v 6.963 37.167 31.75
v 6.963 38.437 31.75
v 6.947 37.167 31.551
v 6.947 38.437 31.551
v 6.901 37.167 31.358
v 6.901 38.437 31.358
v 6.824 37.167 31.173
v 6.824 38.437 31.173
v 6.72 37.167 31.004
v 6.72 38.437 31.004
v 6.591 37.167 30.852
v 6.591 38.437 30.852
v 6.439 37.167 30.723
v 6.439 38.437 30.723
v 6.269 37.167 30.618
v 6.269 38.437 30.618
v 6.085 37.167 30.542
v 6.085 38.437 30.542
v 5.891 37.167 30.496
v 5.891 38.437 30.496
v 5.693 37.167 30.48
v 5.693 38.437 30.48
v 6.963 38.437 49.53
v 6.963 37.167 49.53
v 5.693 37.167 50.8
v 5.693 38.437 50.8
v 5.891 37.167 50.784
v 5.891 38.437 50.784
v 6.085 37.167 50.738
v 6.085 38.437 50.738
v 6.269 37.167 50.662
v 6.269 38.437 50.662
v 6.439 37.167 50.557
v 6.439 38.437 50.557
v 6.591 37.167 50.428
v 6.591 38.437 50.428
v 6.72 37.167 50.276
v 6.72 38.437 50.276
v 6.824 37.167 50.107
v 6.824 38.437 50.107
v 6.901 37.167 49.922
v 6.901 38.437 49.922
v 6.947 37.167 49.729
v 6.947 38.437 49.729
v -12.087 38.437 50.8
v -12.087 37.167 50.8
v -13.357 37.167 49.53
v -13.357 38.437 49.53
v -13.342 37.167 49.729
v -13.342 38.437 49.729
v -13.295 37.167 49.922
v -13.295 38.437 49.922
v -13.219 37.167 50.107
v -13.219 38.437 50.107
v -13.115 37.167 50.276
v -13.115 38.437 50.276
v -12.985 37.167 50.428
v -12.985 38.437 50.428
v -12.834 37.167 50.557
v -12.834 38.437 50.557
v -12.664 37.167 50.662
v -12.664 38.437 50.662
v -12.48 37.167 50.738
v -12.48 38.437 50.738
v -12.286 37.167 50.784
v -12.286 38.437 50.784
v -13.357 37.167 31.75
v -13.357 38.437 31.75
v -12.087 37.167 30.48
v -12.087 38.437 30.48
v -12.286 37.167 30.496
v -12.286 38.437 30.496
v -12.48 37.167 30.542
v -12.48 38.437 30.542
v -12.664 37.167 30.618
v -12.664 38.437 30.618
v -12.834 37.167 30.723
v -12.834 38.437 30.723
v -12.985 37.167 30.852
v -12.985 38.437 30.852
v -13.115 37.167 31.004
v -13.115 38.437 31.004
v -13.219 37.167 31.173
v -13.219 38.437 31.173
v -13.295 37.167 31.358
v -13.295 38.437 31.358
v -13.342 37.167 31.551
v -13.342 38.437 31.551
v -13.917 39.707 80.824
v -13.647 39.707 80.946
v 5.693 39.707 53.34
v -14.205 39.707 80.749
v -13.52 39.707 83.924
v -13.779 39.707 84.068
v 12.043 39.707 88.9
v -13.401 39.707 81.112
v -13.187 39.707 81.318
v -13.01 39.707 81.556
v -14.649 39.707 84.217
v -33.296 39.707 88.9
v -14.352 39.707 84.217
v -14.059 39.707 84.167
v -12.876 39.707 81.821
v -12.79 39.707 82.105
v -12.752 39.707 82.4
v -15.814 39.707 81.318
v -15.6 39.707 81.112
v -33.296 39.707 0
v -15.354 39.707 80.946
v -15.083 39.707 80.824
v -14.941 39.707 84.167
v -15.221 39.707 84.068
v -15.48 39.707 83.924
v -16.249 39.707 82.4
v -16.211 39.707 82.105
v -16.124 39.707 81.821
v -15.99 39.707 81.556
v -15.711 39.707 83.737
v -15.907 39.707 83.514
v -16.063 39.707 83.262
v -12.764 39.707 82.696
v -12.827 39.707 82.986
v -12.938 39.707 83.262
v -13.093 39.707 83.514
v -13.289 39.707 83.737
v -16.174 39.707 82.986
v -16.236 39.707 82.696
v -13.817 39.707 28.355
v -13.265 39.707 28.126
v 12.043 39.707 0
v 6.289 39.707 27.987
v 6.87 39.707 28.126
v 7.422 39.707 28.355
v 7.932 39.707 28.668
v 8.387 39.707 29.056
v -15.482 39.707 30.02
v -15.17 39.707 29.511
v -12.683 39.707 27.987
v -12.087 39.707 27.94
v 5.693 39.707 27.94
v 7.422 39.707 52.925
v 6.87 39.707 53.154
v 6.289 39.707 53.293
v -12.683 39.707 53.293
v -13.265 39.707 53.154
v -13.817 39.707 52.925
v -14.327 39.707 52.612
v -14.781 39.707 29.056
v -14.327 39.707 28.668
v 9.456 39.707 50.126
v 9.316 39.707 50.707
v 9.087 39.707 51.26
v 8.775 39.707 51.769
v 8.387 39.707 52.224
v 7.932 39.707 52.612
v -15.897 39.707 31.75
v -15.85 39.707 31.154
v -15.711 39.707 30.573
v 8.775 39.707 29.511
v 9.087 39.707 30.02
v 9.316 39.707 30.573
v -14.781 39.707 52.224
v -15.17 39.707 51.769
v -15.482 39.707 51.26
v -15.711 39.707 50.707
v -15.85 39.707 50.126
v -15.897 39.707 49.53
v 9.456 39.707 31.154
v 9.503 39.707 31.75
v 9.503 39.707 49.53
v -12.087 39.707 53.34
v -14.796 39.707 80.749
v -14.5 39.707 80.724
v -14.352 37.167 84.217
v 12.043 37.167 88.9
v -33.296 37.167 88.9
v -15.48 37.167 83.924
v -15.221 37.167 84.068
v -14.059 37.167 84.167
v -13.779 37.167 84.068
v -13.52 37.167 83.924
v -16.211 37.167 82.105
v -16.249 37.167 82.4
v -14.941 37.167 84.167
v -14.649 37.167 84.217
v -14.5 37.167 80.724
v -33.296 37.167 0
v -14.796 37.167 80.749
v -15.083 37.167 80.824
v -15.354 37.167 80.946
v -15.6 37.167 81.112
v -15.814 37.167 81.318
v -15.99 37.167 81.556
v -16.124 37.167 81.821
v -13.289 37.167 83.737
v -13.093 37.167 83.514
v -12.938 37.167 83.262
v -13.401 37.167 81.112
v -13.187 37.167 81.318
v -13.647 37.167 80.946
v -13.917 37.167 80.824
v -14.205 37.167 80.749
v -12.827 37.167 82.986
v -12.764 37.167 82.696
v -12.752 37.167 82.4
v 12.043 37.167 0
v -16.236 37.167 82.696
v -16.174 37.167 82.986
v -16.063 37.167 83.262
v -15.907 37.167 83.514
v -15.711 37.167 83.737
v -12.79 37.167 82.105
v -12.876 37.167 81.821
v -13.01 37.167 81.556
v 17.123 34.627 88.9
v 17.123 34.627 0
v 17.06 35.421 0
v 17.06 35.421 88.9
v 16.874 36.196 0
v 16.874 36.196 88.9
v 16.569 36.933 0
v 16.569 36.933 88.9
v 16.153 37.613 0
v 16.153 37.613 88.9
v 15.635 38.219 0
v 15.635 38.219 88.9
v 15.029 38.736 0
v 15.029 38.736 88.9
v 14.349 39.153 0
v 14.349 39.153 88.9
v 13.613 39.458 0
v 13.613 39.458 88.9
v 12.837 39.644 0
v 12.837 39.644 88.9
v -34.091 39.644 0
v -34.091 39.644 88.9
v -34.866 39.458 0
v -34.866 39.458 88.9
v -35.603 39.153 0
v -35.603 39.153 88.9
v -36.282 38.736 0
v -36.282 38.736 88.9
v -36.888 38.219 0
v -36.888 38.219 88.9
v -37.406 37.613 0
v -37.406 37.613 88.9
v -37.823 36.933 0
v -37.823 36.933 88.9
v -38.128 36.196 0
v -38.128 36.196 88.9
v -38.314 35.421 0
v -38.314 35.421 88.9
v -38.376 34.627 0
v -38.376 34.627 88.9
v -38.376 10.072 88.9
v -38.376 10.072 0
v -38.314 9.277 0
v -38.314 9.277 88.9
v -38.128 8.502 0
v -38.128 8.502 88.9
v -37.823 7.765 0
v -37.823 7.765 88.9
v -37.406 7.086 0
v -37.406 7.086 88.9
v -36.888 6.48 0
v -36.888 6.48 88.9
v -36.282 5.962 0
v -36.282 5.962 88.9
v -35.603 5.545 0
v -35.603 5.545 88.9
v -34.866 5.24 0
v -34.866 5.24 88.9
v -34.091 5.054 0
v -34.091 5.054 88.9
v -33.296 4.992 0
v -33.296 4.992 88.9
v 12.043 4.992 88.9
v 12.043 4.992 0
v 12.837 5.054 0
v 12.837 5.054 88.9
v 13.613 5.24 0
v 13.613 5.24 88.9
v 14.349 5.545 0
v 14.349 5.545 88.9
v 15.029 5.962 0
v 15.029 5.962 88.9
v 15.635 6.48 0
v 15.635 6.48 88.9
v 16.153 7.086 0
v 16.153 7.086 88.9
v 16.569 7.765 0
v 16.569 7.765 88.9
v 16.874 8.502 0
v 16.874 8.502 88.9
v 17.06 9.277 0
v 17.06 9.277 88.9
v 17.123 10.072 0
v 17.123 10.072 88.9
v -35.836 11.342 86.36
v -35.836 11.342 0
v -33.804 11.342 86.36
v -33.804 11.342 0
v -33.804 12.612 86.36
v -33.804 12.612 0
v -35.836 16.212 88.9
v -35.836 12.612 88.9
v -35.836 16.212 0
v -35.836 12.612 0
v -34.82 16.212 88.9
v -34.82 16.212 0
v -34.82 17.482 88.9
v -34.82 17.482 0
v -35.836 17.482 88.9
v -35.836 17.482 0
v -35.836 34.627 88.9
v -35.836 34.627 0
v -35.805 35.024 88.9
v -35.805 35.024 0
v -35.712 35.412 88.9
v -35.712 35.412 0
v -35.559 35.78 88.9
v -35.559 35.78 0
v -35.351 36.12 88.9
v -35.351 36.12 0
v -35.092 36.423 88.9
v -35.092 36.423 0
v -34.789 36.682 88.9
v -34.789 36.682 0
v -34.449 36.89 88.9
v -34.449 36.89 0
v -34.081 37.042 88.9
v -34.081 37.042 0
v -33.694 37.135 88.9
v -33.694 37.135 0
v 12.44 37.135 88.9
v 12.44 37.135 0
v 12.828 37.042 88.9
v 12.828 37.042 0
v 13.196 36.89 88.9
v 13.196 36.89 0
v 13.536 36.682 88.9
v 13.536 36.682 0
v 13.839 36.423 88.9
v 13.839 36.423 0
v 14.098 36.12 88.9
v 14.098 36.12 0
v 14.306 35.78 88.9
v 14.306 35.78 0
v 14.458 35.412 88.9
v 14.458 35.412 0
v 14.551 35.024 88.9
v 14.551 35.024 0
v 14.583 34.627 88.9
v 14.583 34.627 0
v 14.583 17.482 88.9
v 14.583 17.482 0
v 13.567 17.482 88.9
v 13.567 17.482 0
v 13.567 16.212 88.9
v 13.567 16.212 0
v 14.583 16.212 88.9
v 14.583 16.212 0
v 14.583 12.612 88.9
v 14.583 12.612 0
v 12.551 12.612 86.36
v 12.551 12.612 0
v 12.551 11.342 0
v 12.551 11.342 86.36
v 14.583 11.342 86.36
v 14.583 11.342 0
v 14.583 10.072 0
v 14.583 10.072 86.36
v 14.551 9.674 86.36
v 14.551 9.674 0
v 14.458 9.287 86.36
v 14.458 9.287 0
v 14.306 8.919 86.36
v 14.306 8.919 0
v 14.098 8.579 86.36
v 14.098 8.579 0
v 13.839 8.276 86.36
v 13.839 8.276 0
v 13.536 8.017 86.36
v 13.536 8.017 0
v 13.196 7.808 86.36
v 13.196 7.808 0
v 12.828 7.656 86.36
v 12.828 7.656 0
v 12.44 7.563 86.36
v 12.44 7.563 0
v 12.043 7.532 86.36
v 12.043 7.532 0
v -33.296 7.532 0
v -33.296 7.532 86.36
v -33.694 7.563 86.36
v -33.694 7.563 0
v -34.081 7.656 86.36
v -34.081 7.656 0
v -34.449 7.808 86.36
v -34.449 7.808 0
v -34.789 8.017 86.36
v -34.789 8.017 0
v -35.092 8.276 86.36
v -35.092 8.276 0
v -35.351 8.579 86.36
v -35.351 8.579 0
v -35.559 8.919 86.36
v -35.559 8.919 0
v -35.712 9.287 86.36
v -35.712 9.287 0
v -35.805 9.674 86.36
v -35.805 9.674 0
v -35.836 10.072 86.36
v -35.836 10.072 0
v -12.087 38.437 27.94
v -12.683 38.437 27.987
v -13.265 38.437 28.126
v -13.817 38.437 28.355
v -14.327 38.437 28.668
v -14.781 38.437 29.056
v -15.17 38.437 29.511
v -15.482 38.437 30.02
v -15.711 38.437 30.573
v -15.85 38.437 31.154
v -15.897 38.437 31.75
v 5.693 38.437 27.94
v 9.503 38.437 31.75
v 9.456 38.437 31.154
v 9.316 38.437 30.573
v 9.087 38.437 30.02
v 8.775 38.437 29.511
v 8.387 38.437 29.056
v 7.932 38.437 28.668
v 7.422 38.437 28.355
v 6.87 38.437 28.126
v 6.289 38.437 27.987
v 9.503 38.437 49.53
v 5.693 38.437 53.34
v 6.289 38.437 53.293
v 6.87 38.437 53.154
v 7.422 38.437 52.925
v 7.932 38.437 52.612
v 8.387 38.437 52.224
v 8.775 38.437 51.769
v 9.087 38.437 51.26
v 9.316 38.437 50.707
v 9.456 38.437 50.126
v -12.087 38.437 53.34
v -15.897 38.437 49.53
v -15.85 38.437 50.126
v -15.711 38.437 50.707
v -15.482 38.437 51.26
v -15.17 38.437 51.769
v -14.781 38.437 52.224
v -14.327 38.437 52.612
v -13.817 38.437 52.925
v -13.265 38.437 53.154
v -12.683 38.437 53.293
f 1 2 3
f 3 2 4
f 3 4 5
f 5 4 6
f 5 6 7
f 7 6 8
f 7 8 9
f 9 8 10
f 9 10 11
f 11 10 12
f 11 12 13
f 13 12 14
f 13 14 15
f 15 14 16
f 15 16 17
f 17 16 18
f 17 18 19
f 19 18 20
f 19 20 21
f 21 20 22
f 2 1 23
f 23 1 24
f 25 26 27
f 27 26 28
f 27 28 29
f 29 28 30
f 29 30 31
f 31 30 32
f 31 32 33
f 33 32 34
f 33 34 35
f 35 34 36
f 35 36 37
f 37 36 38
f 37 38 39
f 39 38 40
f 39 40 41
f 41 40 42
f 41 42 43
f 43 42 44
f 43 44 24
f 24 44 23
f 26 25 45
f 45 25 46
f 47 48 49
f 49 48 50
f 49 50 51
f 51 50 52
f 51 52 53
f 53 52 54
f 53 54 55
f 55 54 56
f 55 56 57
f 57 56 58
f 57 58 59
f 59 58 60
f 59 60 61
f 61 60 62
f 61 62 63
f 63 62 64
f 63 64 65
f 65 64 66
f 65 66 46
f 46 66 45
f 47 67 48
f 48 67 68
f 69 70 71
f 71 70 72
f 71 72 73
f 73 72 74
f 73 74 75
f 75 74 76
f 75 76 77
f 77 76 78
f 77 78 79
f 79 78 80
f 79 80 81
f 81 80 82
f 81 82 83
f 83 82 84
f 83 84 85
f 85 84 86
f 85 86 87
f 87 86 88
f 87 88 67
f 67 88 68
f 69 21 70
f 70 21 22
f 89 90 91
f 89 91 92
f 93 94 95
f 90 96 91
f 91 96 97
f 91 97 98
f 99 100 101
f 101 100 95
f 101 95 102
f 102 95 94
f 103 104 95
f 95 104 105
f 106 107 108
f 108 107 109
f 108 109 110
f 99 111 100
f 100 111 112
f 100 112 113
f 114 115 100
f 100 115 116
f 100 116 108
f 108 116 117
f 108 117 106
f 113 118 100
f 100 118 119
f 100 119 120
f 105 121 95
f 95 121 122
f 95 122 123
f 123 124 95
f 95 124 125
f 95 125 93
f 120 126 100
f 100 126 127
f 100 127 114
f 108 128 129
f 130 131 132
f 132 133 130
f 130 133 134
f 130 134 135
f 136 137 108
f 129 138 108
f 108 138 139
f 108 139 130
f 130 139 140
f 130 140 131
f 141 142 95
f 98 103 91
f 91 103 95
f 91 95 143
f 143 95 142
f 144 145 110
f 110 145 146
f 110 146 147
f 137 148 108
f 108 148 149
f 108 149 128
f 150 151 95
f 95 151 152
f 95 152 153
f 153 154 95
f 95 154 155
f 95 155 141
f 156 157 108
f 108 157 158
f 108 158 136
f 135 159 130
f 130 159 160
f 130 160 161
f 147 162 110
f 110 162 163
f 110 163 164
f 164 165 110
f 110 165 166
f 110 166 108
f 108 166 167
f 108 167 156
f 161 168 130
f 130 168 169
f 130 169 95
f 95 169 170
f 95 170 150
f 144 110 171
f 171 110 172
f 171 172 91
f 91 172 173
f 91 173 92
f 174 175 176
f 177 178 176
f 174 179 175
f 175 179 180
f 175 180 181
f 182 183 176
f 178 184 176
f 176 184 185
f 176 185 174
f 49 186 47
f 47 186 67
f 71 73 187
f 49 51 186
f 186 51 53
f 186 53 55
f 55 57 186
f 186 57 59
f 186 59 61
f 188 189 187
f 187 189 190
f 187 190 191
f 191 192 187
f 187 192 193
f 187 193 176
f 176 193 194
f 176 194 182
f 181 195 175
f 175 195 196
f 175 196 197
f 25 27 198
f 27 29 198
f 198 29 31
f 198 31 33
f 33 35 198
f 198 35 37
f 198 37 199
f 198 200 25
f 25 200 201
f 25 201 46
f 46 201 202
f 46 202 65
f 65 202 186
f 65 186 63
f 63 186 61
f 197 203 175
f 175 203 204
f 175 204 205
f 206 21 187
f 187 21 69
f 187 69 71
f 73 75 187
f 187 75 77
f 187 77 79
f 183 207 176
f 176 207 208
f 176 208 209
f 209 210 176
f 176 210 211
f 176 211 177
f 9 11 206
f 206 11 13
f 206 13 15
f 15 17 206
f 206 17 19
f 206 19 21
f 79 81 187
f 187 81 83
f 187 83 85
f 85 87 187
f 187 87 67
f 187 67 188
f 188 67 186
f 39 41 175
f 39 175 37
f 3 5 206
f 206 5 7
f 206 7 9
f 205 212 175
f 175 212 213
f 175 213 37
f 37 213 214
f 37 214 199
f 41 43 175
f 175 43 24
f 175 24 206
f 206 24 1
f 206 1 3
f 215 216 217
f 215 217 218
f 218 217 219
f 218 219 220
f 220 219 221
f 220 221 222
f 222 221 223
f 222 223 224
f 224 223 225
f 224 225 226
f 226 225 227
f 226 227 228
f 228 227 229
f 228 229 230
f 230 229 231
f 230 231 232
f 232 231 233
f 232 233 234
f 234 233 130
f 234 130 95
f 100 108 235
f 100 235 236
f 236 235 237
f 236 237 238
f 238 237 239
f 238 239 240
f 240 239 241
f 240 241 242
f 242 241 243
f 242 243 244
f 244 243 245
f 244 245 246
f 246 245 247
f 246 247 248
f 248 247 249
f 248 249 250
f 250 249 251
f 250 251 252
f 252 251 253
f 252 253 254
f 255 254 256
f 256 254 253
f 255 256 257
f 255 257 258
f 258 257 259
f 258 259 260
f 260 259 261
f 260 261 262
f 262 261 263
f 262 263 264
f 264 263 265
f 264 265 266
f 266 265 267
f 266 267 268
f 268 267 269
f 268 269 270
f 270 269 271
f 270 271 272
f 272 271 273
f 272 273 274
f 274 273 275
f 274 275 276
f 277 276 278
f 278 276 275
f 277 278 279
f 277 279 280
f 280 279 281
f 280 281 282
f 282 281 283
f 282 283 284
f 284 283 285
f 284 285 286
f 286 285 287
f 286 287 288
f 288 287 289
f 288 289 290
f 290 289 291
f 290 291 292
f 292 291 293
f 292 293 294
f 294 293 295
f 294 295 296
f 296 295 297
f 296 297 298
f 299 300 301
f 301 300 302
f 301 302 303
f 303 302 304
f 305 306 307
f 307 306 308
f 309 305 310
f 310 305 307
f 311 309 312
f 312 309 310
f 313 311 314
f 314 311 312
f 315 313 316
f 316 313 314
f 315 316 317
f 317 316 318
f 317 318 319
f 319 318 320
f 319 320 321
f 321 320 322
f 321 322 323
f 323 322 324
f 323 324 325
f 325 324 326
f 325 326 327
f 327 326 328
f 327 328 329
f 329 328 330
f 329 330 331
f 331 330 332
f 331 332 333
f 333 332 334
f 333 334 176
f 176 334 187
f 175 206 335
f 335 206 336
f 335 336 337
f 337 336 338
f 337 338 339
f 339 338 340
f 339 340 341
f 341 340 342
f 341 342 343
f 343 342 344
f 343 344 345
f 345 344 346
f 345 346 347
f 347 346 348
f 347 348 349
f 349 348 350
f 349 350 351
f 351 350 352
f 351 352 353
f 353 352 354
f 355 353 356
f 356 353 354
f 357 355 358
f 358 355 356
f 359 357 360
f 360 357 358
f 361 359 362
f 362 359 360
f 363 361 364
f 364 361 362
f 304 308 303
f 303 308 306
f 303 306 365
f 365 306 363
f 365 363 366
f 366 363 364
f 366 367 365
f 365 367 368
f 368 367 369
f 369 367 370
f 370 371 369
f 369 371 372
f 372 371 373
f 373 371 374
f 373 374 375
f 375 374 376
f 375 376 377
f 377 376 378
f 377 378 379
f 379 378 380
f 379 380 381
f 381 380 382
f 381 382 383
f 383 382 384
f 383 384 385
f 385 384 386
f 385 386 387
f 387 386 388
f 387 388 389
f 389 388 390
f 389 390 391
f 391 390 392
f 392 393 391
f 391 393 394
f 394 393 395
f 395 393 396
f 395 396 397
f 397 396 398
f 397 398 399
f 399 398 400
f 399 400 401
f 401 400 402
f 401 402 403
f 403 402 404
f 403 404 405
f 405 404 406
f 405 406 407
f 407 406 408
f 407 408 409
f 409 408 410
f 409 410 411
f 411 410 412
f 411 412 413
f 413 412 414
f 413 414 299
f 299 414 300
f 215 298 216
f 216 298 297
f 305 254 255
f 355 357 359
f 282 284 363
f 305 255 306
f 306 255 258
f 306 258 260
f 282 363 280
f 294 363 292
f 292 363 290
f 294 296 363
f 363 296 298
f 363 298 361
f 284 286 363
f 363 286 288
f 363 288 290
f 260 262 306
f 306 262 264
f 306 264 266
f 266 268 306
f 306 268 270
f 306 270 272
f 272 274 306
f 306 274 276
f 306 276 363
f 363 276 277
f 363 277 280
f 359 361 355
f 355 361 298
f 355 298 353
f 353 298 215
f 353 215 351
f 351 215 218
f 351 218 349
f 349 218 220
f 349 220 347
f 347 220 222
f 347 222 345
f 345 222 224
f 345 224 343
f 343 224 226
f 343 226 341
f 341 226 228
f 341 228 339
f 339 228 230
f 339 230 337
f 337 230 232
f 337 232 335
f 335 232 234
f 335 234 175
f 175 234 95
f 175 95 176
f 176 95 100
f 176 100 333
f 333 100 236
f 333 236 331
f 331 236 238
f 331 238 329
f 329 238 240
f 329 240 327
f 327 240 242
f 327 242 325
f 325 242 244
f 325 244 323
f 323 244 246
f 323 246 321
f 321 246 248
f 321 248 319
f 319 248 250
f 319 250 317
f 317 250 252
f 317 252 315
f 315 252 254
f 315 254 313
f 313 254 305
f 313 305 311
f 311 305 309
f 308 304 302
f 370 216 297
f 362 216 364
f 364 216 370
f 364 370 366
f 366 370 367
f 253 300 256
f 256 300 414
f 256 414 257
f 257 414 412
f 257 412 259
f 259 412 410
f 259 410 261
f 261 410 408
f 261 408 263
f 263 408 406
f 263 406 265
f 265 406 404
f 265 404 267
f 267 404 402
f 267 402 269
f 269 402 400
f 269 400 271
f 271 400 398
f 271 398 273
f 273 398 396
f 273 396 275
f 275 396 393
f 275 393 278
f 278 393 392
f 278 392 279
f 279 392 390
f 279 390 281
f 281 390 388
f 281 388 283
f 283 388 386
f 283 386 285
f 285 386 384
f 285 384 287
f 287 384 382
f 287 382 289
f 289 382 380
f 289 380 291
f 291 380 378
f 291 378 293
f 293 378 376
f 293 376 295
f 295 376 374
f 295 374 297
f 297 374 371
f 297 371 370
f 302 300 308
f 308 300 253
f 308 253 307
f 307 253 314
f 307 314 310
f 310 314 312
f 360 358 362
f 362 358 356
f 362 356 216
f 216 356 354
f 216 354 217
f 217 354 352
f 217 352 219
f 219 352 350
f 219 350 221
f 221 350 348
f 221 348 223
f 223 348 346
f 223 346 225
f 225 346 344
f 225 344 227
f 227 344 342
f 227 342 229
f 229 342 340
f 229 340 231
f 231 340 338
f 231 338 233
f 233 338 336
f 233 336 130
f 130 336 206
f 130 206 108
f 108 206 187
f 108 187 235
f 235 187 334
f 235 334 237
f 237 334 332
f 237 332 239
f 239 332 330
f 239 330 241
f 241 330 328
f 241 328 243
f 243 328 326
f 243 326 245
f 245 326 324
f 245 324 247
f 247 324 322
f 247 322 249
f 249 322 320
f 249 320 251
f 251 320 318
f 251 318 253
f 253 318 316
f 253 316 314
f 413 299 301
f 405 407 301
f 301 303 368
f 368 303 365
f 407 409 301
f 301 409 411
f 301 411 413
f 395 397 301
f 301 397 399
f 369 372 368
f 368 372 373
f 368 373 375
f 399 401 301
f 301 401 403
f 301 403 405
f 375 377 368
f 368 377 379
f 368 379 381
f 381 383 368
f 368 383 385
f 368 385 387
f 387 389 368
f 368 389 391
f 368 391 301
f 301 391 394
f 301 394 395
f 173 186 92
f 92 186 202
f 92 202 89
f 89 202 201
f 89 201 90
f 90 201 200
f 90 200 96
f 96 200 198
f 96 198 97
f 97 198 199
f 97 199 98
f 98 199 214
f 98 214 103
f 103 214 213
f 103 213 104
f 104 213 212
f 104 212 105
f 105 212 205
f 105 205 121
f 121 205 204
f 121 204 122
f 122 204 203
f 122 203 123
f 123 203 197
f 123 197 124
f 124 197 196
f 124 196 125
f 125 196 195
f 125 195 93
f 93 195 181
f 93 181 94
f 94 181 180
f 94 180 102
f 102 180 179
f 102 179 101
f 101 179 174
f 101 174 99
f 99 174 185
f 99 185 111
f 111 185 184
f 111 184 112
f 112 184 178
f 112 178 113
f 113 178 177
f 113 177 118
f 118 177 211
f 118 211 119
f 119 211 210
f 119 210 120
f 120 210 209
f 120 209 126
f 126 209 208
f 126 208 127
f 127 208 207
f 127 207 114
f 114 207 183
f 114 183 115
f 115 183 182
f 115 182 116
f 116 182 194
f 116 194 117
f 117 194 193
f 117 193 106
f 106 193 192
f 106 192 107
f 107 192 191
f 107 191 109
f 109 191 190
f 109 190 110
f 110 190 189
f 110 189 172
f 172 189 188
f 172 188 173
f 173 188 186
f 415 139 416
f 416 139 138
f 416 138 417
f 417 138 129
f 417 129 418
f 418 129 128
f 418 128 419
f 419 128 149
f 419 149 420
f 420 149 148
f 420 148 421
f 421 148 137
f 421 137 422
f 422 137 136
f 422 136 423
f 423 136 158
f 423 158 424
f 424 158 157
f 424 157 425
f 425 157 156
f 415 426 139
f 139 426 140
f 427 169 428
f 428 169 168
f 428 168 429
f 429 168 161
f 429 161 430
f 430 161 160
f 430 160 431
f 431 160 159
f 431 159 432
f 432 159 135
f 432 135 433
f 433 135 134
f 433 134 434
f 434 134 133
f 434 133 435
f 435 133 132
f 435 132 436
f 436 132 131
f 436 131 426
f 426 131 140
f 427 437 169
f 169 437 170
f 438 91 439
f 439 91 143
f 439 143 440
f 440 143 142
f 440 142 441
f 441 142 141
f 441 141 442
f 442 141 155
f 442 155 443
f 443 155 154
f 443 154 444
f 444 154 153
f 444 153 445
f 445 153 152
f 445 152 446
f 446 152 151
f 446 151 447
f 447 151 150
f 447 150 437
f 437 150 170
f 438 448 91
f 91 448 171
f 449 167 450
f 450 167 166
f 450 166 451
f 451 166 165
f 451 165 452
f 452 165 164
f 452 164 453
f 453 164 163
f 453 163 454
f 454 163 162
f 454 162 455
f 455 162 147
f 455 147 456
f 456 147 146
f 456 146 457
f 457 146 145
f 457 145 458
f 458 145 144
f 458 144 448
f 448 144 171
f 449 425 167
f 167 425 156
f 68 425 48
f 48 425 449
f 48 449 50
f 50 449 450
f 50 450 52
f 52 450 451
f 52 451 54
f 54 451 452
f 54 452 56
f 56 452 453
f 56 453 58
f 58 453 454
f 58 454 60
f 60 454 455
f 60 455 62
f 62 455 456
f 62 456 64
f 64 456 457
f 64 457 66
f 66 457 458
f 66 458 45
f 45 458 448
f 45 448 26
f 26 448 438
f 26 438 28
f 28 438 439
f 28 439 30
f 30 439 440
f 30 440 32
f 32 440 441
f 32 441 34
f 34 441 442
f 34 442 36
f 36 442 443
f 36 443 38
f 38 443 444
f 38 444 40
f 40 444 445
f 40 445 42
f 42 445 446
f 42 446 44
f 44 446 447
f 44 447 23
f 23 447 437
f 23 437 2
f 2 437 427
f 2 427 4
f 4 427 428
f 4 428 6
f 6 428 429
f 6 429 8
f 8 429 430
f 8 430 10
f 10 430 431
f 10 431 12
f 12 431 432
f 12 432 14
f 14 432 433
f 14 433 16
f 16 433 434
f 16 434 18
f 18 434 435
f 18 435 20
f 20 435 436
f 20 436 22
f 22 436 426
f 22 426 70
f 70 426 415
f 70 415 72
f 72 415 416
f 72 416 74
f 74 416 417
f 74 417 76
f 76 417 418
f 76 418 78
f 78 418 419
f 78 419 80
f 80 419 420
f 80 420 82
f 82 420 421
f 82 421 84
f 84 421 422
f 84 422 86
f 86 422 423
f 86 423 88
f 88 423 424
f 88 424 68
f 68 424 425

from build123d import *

# Parameters (mm, degrees)
BOSS_EXTRUDE1_DEPTH                 = 88.9
SKETCH2_W                           = 50.419
SKETCH2_H                           = 2.54
BOSS_EXTRUDE2_DEPTH                 = 6.223
F_3_0MM_CLEARANCE_DOWEL_HOLE1_D     = 3.5
F_3_0MM_CLEARANCE_DOWEL_HOLE1_DEPTH = 2.54
CUT_EXTRUDE1_DEPTH                  = 7.62
CUT_EXTRUDE2_DEPTH                  = 1.27


with BuildPart() as part:
    # Sketch1 → Boss-Extrude1 (new body)
    with BuildSketch(Plane.XY):
        with BuildLine():
            Line((17.122726154, 10.071647692), (17.122726154, 34.626647692))
            ThreePointArc((17.122726154, 34.626647692), (15.634828602, 38.218750141), (12.042726154, 39.706647692))
            Line((12.042726154, 39.706647692), (-33.296273846, 39.706647692))
            ThreePointArc((-33.296273846, 39.706647692), (-36.888376295, 38.218750141), (-38.376273846, 34.626647692))
            Line((-38.376273846, 34.626647692), (-38.376273846, 10.071647692))
            ThreePointArc((-38.376273846, 10.071647692), (-36.888376295, 6.479545244), (-33.296273846, 4.991647692))
            Line((-33.296273846, 4.991647692), (12.042726154, 4.991647692))
            ThreePointArc((12.042726154, 4.991647692), (15.634828602, 6.479545244), (17.122726154, 10.071647692))
        make_face()
        with BuildLine():
            Line((-35.836273846, 16.211647692), (-34.820273846, 16.211647692))
            Line((-34.820273846, 16.211647692), (-34.820273846, 17.481647692))
            Line((-34.820273846, 17.481647692), (-35.836273846, 17.481647692))
            Line((-35.836273846, 17.481647692), (-35.836273846, 34.626647692))
            ThreePointArc((-35.836273846, 34.626647692), (-35.09232507, 36.422698917), (-33.296273846, 37.166647692))
            Line((-33.296273846, 37.166647692), (12.042726154, 37.166647692))
            ThreePointArc((12.042726154, 37.166647692), (13.838777378, 36.422698917), (14.582726154, 34.626647692))
            Line((14.582726154, 34.626647692), (14.582726154, 17.481647692))
            Line((14.582726154, 17.481647692), (13.566726154, 17.481647692))
            Line((13.566726154, 17.481647692), (13.566726154, 16.211647692))
            Line((13.566726154, 16.211647692), (14.582726154, 16.211647692))
            Line((14.582726154, 16.211647692), (14.582726154, 12.611647692))
            Line((14.582726154, 12.611647692), (12.550726154, 12.611647692))
            Line((12.550726154, 12.611647692), (12.550726154, 11.341647692))
            Line((12.550726154, 11.341647692), (14.582726154, 11.341647692))
            Line((14.582726154, 11.341647692), (14.582726154, 10.071647692))
            ThreePointArc((14.582726154, 10.071647692), (13.838777378, 8.275596468), (12.042726154, 7.531647692))
            Line((12.042726154, 7.531647692), (-33.296273846, 7.531647692))
            ThreePointArc((-33.296273846, 7.531647692), (-35.09232507, 8.275596468), (-35.836273846, 10.071647692))
            Line((-35.836273846, 10.071647692), (-35.836273846, 11.341647692))
            Line((-35.836273846, 11.341647692), (-33.804273846, 11.341647692))
            Line((-33.804273846, 11.341647692), (-33.804273846, 12.611647692))
            Line((-33.804273846, 12.611647692), (-35.836273846, 12.611647692))
            Line((-35.836273846, 12.611647692), (-35.836273846, 16.211647692))
        make_face(mode=Mode.SUBTRACT)
    extrude(amount=BOSS_EXTRUDE1_DEPTH)

    # Sketch2 → Boss-Extrude2 (add)
    with BuildSketch(Plane(origin=(0, 12.611647692, 0), x_dir=(1, 0, 0), z_dir=(0, 1, 0))):
        with Locations((-10.626773846, -87.63)):
            Rectangle(SKETCH2_W, SKETCH2_H)
    extrude(amount=-BOSS_EXTRUDE2_DEPTH)

    # Ø3.0mm Clearance Dowel Hole1
    with Locations(Plane(origin=(-44.550497372, 37.166647692, -20.932340184), x_dir=(-1, 0, 0), z_dir=(0, -1, 0))):
        with Locations((-30.050223526, -103.406140184)):
            Hole(F_3_0MM_CLEARANCE_DOWEL_HOLE1_D / 2, depth=F_3_0MM_CLEARANCE_DOWEL_HOLE1_DEPTH)

    # Sketch7 → Cut-Extrude1 (cut)
    with BuildSketch(Plane(origin=(0, 39.706647692, 0), x_dir=(1, 0, 0), z_dir=(0, 1, 0))):
        with BuildLine():
            Line((6.962726154, -31.75), (6.962726154, -49.53))
            ThreePointArc((6.962726154, -49.53), (6.590751766, -50.428025612), (5.692726154, -50.8))
            Line((5.692726154, -50.8), (-12.087273846, -50.8))
            ThreePointArc((-12.087273846, -50.8), (-12.985299458, -50.428025612), (-13.357273846, -49.53))
            Line((-13.357273846, -49.53), (-13.357273846, -31.75))
            ThreePointArc((-13.357273846, -31.75), (-12.985299458, -30.851974388), (-12.087273846, -30.48))
            Line((-12.087273846, -30.48), (5.692726154, -30.48))
            ThreePointArc((5.692726154, -30.48), (6.590751766, -30.851974388), (6.962726154, -31.75))
        make_face()
    extrude(amount=-CUT_EXTRUDE1_DEPTH, mode=Mode.SUBTRACT)

    # Sketch7<3> → Cut-Extrude2 (cut)
    with BuildSketch(Plane(origin=(0, 39.706647692, 0), x_dir=(1, 0, 0), z_dir=(0, 1, 0))):
        with BuildLine():
            Line((5.692726154, -27.94), (-12.087273846, -27.94))
            ThreePointArc((-12.087273846, -27.94), (-14.781350682, -29.055923164), (-15.897273846, -31.75))
            Line((-15.897273846, -31.75), (-15.897273846, -49.53))
            ThreePointArc((-15.897273846, -49.53), (-14.781350682, -52.224076836), (-12.087273846, -53.34))
            Line((-12.087273846, -53.34), (5.692726154, -53.34))
            ThreePointArc((5.692726154, -53.34), (8.38680299, -52.224076836), (9.502726154, -49.53))
            Line((9.502726154, -49.53), (9.502726154, -31.75))
            ThreePointArc((9.502726154, -31.75), (8.38680299, -29.055923164), (5.692726154, -27.94))
        make_face()
        with BuildLine():
            Line((6.962726154, -31.75), (6.962726154, -49.53))
            ThreePointArc((6.962726154, -49.53), (6.590751766, -50.428025612), (5.692726154, -50.8))
            Line((5.692726154, -50.8), (-12.087273846, -50.8))
            ThreePointArc((-12.087273846, -50.8), (-12.985299458, -50.428025612), (-13.357273846, -49.53))
            Line((-13.357273846, -49.53), (-13.357273846, -31.75))
            ThreePointArc((-13.357273846, -31.75), (-12.985299458, -30.851974388), (-12.087273846, -30.48))
            Line((-12.087273846, -30.48), (5.692726154, -30.48))
            ThreePointArc((5.692726154, -30.48), (6.590751766, -30.851974388), (6.962726154, -31.75))
        make_face(mode=Mode.SUBTRACT)
    extrude(amount=-CUT_EXTRUDE2_DEPTH, mode=Mode.SUBTRACT)


solid = part.part
